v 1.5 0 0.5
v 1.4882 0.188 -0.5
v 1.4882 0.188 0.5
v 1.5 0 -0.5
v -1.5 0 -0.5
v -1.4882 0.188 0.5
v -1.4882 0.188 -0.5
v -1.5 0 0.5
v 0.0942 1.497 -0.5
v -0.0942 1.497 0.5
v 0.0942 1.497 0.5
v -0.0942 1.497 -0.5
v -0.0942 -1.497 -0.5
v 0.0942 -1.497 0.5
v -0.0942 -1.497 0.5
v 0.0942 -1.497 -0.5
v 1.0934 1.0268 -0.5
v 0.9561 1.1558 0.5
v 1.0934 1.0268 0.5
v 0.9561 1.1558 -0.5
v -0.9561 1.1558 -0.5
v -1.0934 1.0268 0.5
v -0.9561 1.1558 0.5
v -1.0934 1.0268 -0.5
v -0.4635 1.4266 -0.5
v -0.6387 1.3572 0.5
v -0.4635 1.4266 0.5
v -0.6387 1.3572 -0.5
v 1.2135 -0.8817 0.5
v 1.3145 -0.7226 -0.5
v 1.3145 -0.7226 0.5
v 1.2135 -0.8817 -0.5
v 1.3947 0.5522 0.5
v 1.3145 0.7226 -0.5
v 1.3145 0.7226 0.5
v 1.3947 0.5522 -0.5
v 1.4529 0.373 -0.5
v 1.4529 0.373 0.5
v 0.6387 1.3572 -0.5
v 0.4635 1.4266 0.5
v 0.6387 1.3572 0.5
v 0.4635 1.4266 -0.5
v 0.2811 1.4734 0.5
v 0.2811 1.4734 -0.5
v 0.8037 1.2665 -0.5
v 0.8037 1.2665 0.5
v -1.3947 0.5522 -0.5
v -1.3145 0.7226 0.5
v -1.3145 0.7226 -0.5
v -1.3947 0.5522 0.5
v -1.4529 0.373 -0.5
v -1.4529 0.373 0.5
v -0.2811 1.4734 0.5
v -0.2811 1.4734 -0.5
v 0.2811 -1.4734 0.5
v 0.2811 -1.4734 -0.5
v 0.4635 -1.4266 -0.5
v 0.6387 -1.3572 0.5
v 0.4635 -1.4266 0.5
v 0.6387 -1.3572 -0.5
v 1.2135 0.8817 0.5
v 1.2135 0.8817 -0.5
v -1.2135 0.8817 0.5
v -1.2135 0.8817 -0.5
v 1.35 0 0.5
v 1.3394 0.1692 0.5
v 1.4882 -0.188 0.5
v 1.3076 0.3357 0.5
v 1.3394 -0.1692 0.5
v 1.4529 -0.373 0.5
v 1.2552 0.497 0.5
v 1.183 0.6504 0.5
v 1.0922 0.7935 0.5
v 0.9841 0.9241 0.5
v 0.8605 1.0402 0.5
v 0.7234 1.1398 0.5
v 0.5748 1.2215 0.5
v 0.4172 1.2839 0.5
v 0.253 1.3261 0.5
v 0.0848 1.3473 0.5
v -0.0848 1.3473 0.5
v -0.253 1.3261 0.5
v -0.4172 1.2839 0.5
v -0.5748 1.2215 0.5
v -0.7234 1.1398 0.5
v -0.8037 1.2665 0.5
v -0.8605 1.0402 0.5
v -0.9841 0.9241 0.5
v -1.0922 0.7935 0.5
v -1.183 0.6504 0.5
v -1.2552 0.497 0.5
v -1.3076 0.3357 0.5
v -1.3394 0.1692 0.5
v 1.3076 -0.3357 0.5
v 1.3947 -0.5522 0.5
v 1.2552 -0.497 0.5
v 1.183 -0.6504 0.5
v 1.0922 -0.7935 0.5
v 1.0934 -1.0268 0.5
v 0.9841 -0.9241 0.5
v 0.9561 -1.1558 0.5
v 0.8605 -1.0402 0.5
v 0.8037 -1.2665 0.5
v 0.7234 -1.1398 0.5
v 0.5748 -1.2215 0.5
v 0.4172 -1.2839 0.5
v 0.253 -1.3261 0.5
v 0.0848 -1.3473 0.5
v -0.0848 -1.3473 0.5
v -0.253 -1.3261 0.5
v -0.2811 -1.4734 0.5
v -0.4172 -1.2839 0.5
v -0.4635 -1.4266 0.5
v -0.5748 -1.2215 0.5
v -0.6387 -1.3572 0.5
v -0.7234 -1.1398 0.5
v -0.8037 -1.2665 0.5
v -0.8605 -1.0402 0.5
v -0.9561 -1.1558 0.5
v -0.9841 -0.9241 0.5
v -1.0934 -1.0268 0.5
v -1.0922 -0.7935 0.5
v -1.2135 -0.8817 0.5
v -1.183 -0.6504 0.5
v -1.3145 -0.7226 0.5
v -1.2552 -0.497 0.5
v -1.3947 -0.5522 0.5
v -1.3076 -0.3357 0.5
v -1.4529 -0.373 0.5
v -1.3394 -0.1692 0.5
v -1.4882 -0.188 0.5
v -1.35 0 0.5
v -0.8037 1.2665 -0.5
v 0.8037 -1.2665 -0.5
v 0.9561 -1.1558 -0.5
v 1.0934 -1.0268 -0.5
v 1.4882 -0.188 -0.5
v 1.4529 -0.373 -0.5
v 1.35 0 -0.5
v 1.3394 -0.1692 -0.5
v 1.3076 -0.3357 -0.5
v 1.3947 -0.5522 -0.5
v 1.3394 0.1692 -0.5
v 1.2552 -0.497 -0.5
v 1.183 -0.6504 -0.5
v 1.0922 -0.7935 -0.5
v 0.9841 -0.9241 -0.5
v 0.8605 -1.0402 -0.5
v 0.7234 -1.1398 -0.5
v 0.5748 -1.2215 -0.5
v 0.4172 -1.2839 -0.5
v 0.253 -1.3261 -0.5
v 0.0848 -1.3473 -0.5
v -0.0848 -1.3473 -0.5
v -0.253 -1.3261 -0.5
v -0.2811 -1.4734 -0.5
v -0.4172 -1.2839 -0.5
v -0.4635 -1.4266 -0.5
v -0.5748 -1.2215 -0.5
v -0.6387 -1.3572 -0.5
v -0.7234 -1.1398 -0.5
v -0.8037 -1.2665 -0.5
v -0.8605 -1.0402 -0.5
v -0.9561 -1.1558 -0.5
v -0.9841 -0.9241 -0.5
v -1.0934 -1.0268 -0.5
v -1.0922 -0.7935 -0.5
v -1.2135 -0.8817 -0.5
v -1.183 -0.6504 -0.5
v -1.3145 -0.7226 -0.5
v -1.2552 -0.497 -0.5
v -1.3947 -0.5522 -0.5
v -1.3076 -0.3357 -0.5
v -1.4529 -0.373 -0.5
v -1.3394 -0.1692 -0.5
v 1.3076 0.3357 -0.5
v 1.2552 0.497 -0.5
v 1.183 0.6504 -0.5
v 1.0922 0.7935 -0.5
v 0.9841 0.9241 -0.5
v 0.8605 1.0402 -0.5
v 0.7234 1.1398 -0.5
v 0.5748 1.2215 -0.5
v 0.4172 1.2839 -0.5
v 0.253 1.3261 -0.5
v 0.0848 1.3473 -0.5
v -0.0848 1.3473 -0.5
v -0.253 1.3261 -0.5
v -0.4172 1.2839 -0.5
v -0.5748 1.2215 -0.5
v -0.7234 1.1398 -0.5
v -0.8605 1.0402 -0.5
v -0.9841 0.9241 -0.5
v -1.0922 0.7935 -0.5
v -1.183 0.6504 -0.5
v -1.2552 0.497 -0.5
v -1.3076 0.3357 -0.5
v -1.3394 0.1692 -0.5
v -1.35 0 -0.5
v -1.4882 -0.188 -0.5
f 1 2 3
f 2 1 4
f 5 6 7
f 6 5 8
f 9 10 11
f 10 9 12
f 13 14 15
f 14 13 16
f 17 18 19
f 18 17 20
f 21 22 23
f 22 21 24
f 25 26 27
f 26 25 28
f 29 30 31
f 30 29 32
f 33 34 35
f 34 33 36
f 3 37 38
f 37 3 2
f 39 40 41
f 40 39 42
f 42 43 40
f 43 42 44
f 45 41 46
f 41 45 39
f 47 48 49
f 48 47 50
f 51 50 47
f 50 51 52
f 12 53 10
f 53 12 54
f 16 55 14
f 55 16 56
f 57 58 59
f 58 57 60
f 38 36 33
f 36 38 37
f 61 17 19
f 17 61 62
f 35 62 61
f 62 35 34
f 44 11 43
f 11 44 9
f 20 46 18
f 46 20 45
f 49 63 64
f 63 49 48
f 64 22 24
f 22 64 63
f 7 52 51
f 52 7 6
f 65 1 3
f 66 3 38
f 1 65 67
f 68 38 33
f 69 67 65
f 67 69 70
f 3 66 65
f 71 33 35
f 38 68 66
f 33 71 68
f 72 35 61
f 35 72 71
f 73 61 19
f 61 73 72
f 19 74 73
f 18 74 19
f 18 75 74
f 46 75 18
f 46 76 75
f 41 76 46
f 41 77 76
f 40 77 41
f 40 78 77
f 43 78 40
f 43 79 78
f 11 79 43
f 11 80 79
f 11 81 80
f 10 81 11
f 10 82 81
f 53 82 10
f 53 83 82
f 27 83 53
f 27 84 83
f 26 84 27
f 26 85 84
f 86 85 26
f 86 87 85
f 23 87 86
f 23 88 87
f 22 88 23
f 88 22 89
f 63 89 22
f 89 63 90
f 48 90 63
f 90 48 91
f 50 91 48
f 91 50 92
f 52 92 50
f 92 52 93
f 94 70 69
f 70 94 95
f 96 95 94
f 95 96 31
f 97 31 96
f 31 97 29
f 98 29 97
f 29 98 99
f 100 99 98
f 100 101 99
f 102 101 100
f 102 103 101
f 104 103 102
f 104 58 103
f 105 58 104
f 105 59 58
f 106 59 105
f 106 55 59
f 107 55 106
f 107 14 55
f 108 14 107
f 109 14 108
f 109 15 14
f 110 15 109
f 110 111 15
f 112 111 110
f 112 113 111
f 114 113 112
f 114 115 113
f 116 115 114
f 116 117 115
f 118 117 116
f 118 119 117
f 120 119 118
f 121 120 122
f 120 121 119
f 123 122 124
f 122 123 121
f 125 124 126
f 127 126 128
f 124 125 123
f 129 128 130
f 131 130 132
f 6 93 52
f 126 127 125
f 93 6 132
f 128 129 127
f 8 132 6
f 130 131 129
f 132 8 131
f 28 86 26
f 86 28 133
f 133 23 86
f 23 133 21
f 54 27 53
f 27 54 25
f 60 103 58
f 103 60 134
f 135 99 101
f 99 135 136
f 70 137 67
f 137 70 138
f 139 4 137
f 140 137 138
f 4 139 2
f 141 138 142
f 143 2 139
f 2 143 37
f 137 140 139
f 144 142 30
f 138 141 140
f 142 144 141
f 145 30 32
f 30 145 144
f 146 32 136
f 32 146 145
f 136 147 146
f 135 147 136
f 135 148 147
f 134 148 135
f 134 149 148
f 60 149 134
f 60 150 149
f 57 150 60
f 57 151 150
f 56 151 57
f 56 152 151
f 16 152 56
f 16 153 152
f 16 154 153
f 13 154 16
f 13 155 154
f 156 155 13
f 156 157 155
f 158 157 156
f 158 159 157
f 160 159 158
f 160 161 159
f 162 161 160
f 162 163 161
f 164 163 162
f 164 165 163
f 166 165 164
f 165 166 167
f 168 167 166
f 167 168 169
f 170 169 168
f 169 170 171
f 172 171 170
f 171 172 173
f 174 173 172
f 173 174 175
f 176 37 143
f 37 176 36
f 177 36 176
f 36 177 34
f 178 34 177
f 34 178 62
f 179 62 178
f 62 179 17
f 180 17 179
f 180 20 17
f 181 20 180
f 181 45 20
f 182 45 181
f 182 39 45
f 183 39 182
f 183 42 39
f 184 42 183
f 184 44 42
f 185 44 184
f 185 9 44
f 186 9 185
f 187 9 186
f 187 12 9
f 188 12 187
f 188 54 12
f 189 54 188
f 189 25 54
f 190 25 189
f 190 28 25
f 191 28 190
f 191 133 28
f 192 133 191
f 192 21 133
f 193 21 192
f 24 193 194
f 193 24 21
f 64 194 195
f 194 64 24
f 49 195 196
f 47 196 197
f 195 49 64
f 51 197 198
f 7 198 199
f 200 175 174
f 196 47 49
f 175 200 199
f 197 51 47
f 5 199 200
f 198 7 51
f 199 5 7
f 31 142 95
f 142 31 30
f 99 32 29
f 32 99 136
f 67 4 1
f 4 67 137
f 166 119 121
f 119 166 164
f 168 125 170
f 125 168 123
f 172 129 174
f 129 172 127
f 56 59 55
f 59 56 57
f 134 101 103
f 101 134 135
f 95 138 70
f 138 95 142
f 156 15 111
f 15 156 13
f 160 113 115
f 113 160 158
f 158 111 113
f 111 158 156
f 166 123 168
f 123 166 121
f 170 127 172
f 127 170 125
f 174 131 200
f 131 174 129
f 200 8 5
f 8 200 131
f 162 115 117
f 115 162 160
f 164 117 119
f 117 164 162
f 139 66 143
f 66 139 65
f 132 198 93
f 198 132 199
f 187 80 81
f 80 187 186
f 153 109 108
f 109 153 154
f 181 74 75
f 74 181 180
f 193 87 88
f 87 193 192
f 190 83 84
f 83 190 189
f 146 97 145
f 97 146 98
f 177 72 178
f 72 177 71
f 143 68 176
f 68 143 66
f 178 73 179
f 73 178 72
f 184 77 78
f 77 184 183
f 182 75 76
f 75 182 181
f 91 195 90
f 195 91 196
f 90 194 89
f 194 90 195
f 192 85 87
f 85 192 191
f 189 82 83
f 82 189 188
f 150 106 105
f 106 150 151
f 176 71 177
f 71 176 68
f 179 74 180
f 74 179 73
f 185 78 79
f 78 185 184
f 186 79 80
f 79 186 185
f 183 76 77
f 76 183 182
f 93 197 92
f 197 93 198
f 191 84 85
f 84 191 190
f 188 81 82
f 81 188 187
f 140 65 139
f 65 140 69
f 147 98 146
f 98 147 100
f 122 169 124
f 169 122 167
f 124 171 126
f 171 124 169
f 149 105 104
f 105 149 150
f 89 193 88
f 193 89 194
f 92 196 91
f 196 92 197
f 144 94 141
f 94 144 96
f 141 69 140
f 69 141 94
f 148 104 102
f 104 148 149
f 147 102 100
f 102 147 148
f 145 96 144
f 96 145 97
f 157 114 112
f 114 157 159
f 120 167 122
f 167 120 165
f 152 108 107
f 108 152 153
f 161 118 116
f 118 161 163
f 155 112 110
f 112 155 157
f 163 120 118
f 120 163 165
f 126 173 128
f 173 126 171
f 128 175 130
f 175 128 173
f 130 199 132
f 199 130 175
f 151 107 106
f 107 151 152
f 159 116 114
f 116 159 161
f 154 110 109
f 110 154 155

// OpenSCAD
$fn = 50;


difference() {
	union() {
		translate(v = [0, 0, -0.5000000000]) {
			cylinder(h = 1, r = 1.5000000000);
		}
	}
	union() {
		translate(v = [0, 0, -100.0000000000]) {
			cylinder(h = 200, r = 1.3500000000);
		}
	}
}
